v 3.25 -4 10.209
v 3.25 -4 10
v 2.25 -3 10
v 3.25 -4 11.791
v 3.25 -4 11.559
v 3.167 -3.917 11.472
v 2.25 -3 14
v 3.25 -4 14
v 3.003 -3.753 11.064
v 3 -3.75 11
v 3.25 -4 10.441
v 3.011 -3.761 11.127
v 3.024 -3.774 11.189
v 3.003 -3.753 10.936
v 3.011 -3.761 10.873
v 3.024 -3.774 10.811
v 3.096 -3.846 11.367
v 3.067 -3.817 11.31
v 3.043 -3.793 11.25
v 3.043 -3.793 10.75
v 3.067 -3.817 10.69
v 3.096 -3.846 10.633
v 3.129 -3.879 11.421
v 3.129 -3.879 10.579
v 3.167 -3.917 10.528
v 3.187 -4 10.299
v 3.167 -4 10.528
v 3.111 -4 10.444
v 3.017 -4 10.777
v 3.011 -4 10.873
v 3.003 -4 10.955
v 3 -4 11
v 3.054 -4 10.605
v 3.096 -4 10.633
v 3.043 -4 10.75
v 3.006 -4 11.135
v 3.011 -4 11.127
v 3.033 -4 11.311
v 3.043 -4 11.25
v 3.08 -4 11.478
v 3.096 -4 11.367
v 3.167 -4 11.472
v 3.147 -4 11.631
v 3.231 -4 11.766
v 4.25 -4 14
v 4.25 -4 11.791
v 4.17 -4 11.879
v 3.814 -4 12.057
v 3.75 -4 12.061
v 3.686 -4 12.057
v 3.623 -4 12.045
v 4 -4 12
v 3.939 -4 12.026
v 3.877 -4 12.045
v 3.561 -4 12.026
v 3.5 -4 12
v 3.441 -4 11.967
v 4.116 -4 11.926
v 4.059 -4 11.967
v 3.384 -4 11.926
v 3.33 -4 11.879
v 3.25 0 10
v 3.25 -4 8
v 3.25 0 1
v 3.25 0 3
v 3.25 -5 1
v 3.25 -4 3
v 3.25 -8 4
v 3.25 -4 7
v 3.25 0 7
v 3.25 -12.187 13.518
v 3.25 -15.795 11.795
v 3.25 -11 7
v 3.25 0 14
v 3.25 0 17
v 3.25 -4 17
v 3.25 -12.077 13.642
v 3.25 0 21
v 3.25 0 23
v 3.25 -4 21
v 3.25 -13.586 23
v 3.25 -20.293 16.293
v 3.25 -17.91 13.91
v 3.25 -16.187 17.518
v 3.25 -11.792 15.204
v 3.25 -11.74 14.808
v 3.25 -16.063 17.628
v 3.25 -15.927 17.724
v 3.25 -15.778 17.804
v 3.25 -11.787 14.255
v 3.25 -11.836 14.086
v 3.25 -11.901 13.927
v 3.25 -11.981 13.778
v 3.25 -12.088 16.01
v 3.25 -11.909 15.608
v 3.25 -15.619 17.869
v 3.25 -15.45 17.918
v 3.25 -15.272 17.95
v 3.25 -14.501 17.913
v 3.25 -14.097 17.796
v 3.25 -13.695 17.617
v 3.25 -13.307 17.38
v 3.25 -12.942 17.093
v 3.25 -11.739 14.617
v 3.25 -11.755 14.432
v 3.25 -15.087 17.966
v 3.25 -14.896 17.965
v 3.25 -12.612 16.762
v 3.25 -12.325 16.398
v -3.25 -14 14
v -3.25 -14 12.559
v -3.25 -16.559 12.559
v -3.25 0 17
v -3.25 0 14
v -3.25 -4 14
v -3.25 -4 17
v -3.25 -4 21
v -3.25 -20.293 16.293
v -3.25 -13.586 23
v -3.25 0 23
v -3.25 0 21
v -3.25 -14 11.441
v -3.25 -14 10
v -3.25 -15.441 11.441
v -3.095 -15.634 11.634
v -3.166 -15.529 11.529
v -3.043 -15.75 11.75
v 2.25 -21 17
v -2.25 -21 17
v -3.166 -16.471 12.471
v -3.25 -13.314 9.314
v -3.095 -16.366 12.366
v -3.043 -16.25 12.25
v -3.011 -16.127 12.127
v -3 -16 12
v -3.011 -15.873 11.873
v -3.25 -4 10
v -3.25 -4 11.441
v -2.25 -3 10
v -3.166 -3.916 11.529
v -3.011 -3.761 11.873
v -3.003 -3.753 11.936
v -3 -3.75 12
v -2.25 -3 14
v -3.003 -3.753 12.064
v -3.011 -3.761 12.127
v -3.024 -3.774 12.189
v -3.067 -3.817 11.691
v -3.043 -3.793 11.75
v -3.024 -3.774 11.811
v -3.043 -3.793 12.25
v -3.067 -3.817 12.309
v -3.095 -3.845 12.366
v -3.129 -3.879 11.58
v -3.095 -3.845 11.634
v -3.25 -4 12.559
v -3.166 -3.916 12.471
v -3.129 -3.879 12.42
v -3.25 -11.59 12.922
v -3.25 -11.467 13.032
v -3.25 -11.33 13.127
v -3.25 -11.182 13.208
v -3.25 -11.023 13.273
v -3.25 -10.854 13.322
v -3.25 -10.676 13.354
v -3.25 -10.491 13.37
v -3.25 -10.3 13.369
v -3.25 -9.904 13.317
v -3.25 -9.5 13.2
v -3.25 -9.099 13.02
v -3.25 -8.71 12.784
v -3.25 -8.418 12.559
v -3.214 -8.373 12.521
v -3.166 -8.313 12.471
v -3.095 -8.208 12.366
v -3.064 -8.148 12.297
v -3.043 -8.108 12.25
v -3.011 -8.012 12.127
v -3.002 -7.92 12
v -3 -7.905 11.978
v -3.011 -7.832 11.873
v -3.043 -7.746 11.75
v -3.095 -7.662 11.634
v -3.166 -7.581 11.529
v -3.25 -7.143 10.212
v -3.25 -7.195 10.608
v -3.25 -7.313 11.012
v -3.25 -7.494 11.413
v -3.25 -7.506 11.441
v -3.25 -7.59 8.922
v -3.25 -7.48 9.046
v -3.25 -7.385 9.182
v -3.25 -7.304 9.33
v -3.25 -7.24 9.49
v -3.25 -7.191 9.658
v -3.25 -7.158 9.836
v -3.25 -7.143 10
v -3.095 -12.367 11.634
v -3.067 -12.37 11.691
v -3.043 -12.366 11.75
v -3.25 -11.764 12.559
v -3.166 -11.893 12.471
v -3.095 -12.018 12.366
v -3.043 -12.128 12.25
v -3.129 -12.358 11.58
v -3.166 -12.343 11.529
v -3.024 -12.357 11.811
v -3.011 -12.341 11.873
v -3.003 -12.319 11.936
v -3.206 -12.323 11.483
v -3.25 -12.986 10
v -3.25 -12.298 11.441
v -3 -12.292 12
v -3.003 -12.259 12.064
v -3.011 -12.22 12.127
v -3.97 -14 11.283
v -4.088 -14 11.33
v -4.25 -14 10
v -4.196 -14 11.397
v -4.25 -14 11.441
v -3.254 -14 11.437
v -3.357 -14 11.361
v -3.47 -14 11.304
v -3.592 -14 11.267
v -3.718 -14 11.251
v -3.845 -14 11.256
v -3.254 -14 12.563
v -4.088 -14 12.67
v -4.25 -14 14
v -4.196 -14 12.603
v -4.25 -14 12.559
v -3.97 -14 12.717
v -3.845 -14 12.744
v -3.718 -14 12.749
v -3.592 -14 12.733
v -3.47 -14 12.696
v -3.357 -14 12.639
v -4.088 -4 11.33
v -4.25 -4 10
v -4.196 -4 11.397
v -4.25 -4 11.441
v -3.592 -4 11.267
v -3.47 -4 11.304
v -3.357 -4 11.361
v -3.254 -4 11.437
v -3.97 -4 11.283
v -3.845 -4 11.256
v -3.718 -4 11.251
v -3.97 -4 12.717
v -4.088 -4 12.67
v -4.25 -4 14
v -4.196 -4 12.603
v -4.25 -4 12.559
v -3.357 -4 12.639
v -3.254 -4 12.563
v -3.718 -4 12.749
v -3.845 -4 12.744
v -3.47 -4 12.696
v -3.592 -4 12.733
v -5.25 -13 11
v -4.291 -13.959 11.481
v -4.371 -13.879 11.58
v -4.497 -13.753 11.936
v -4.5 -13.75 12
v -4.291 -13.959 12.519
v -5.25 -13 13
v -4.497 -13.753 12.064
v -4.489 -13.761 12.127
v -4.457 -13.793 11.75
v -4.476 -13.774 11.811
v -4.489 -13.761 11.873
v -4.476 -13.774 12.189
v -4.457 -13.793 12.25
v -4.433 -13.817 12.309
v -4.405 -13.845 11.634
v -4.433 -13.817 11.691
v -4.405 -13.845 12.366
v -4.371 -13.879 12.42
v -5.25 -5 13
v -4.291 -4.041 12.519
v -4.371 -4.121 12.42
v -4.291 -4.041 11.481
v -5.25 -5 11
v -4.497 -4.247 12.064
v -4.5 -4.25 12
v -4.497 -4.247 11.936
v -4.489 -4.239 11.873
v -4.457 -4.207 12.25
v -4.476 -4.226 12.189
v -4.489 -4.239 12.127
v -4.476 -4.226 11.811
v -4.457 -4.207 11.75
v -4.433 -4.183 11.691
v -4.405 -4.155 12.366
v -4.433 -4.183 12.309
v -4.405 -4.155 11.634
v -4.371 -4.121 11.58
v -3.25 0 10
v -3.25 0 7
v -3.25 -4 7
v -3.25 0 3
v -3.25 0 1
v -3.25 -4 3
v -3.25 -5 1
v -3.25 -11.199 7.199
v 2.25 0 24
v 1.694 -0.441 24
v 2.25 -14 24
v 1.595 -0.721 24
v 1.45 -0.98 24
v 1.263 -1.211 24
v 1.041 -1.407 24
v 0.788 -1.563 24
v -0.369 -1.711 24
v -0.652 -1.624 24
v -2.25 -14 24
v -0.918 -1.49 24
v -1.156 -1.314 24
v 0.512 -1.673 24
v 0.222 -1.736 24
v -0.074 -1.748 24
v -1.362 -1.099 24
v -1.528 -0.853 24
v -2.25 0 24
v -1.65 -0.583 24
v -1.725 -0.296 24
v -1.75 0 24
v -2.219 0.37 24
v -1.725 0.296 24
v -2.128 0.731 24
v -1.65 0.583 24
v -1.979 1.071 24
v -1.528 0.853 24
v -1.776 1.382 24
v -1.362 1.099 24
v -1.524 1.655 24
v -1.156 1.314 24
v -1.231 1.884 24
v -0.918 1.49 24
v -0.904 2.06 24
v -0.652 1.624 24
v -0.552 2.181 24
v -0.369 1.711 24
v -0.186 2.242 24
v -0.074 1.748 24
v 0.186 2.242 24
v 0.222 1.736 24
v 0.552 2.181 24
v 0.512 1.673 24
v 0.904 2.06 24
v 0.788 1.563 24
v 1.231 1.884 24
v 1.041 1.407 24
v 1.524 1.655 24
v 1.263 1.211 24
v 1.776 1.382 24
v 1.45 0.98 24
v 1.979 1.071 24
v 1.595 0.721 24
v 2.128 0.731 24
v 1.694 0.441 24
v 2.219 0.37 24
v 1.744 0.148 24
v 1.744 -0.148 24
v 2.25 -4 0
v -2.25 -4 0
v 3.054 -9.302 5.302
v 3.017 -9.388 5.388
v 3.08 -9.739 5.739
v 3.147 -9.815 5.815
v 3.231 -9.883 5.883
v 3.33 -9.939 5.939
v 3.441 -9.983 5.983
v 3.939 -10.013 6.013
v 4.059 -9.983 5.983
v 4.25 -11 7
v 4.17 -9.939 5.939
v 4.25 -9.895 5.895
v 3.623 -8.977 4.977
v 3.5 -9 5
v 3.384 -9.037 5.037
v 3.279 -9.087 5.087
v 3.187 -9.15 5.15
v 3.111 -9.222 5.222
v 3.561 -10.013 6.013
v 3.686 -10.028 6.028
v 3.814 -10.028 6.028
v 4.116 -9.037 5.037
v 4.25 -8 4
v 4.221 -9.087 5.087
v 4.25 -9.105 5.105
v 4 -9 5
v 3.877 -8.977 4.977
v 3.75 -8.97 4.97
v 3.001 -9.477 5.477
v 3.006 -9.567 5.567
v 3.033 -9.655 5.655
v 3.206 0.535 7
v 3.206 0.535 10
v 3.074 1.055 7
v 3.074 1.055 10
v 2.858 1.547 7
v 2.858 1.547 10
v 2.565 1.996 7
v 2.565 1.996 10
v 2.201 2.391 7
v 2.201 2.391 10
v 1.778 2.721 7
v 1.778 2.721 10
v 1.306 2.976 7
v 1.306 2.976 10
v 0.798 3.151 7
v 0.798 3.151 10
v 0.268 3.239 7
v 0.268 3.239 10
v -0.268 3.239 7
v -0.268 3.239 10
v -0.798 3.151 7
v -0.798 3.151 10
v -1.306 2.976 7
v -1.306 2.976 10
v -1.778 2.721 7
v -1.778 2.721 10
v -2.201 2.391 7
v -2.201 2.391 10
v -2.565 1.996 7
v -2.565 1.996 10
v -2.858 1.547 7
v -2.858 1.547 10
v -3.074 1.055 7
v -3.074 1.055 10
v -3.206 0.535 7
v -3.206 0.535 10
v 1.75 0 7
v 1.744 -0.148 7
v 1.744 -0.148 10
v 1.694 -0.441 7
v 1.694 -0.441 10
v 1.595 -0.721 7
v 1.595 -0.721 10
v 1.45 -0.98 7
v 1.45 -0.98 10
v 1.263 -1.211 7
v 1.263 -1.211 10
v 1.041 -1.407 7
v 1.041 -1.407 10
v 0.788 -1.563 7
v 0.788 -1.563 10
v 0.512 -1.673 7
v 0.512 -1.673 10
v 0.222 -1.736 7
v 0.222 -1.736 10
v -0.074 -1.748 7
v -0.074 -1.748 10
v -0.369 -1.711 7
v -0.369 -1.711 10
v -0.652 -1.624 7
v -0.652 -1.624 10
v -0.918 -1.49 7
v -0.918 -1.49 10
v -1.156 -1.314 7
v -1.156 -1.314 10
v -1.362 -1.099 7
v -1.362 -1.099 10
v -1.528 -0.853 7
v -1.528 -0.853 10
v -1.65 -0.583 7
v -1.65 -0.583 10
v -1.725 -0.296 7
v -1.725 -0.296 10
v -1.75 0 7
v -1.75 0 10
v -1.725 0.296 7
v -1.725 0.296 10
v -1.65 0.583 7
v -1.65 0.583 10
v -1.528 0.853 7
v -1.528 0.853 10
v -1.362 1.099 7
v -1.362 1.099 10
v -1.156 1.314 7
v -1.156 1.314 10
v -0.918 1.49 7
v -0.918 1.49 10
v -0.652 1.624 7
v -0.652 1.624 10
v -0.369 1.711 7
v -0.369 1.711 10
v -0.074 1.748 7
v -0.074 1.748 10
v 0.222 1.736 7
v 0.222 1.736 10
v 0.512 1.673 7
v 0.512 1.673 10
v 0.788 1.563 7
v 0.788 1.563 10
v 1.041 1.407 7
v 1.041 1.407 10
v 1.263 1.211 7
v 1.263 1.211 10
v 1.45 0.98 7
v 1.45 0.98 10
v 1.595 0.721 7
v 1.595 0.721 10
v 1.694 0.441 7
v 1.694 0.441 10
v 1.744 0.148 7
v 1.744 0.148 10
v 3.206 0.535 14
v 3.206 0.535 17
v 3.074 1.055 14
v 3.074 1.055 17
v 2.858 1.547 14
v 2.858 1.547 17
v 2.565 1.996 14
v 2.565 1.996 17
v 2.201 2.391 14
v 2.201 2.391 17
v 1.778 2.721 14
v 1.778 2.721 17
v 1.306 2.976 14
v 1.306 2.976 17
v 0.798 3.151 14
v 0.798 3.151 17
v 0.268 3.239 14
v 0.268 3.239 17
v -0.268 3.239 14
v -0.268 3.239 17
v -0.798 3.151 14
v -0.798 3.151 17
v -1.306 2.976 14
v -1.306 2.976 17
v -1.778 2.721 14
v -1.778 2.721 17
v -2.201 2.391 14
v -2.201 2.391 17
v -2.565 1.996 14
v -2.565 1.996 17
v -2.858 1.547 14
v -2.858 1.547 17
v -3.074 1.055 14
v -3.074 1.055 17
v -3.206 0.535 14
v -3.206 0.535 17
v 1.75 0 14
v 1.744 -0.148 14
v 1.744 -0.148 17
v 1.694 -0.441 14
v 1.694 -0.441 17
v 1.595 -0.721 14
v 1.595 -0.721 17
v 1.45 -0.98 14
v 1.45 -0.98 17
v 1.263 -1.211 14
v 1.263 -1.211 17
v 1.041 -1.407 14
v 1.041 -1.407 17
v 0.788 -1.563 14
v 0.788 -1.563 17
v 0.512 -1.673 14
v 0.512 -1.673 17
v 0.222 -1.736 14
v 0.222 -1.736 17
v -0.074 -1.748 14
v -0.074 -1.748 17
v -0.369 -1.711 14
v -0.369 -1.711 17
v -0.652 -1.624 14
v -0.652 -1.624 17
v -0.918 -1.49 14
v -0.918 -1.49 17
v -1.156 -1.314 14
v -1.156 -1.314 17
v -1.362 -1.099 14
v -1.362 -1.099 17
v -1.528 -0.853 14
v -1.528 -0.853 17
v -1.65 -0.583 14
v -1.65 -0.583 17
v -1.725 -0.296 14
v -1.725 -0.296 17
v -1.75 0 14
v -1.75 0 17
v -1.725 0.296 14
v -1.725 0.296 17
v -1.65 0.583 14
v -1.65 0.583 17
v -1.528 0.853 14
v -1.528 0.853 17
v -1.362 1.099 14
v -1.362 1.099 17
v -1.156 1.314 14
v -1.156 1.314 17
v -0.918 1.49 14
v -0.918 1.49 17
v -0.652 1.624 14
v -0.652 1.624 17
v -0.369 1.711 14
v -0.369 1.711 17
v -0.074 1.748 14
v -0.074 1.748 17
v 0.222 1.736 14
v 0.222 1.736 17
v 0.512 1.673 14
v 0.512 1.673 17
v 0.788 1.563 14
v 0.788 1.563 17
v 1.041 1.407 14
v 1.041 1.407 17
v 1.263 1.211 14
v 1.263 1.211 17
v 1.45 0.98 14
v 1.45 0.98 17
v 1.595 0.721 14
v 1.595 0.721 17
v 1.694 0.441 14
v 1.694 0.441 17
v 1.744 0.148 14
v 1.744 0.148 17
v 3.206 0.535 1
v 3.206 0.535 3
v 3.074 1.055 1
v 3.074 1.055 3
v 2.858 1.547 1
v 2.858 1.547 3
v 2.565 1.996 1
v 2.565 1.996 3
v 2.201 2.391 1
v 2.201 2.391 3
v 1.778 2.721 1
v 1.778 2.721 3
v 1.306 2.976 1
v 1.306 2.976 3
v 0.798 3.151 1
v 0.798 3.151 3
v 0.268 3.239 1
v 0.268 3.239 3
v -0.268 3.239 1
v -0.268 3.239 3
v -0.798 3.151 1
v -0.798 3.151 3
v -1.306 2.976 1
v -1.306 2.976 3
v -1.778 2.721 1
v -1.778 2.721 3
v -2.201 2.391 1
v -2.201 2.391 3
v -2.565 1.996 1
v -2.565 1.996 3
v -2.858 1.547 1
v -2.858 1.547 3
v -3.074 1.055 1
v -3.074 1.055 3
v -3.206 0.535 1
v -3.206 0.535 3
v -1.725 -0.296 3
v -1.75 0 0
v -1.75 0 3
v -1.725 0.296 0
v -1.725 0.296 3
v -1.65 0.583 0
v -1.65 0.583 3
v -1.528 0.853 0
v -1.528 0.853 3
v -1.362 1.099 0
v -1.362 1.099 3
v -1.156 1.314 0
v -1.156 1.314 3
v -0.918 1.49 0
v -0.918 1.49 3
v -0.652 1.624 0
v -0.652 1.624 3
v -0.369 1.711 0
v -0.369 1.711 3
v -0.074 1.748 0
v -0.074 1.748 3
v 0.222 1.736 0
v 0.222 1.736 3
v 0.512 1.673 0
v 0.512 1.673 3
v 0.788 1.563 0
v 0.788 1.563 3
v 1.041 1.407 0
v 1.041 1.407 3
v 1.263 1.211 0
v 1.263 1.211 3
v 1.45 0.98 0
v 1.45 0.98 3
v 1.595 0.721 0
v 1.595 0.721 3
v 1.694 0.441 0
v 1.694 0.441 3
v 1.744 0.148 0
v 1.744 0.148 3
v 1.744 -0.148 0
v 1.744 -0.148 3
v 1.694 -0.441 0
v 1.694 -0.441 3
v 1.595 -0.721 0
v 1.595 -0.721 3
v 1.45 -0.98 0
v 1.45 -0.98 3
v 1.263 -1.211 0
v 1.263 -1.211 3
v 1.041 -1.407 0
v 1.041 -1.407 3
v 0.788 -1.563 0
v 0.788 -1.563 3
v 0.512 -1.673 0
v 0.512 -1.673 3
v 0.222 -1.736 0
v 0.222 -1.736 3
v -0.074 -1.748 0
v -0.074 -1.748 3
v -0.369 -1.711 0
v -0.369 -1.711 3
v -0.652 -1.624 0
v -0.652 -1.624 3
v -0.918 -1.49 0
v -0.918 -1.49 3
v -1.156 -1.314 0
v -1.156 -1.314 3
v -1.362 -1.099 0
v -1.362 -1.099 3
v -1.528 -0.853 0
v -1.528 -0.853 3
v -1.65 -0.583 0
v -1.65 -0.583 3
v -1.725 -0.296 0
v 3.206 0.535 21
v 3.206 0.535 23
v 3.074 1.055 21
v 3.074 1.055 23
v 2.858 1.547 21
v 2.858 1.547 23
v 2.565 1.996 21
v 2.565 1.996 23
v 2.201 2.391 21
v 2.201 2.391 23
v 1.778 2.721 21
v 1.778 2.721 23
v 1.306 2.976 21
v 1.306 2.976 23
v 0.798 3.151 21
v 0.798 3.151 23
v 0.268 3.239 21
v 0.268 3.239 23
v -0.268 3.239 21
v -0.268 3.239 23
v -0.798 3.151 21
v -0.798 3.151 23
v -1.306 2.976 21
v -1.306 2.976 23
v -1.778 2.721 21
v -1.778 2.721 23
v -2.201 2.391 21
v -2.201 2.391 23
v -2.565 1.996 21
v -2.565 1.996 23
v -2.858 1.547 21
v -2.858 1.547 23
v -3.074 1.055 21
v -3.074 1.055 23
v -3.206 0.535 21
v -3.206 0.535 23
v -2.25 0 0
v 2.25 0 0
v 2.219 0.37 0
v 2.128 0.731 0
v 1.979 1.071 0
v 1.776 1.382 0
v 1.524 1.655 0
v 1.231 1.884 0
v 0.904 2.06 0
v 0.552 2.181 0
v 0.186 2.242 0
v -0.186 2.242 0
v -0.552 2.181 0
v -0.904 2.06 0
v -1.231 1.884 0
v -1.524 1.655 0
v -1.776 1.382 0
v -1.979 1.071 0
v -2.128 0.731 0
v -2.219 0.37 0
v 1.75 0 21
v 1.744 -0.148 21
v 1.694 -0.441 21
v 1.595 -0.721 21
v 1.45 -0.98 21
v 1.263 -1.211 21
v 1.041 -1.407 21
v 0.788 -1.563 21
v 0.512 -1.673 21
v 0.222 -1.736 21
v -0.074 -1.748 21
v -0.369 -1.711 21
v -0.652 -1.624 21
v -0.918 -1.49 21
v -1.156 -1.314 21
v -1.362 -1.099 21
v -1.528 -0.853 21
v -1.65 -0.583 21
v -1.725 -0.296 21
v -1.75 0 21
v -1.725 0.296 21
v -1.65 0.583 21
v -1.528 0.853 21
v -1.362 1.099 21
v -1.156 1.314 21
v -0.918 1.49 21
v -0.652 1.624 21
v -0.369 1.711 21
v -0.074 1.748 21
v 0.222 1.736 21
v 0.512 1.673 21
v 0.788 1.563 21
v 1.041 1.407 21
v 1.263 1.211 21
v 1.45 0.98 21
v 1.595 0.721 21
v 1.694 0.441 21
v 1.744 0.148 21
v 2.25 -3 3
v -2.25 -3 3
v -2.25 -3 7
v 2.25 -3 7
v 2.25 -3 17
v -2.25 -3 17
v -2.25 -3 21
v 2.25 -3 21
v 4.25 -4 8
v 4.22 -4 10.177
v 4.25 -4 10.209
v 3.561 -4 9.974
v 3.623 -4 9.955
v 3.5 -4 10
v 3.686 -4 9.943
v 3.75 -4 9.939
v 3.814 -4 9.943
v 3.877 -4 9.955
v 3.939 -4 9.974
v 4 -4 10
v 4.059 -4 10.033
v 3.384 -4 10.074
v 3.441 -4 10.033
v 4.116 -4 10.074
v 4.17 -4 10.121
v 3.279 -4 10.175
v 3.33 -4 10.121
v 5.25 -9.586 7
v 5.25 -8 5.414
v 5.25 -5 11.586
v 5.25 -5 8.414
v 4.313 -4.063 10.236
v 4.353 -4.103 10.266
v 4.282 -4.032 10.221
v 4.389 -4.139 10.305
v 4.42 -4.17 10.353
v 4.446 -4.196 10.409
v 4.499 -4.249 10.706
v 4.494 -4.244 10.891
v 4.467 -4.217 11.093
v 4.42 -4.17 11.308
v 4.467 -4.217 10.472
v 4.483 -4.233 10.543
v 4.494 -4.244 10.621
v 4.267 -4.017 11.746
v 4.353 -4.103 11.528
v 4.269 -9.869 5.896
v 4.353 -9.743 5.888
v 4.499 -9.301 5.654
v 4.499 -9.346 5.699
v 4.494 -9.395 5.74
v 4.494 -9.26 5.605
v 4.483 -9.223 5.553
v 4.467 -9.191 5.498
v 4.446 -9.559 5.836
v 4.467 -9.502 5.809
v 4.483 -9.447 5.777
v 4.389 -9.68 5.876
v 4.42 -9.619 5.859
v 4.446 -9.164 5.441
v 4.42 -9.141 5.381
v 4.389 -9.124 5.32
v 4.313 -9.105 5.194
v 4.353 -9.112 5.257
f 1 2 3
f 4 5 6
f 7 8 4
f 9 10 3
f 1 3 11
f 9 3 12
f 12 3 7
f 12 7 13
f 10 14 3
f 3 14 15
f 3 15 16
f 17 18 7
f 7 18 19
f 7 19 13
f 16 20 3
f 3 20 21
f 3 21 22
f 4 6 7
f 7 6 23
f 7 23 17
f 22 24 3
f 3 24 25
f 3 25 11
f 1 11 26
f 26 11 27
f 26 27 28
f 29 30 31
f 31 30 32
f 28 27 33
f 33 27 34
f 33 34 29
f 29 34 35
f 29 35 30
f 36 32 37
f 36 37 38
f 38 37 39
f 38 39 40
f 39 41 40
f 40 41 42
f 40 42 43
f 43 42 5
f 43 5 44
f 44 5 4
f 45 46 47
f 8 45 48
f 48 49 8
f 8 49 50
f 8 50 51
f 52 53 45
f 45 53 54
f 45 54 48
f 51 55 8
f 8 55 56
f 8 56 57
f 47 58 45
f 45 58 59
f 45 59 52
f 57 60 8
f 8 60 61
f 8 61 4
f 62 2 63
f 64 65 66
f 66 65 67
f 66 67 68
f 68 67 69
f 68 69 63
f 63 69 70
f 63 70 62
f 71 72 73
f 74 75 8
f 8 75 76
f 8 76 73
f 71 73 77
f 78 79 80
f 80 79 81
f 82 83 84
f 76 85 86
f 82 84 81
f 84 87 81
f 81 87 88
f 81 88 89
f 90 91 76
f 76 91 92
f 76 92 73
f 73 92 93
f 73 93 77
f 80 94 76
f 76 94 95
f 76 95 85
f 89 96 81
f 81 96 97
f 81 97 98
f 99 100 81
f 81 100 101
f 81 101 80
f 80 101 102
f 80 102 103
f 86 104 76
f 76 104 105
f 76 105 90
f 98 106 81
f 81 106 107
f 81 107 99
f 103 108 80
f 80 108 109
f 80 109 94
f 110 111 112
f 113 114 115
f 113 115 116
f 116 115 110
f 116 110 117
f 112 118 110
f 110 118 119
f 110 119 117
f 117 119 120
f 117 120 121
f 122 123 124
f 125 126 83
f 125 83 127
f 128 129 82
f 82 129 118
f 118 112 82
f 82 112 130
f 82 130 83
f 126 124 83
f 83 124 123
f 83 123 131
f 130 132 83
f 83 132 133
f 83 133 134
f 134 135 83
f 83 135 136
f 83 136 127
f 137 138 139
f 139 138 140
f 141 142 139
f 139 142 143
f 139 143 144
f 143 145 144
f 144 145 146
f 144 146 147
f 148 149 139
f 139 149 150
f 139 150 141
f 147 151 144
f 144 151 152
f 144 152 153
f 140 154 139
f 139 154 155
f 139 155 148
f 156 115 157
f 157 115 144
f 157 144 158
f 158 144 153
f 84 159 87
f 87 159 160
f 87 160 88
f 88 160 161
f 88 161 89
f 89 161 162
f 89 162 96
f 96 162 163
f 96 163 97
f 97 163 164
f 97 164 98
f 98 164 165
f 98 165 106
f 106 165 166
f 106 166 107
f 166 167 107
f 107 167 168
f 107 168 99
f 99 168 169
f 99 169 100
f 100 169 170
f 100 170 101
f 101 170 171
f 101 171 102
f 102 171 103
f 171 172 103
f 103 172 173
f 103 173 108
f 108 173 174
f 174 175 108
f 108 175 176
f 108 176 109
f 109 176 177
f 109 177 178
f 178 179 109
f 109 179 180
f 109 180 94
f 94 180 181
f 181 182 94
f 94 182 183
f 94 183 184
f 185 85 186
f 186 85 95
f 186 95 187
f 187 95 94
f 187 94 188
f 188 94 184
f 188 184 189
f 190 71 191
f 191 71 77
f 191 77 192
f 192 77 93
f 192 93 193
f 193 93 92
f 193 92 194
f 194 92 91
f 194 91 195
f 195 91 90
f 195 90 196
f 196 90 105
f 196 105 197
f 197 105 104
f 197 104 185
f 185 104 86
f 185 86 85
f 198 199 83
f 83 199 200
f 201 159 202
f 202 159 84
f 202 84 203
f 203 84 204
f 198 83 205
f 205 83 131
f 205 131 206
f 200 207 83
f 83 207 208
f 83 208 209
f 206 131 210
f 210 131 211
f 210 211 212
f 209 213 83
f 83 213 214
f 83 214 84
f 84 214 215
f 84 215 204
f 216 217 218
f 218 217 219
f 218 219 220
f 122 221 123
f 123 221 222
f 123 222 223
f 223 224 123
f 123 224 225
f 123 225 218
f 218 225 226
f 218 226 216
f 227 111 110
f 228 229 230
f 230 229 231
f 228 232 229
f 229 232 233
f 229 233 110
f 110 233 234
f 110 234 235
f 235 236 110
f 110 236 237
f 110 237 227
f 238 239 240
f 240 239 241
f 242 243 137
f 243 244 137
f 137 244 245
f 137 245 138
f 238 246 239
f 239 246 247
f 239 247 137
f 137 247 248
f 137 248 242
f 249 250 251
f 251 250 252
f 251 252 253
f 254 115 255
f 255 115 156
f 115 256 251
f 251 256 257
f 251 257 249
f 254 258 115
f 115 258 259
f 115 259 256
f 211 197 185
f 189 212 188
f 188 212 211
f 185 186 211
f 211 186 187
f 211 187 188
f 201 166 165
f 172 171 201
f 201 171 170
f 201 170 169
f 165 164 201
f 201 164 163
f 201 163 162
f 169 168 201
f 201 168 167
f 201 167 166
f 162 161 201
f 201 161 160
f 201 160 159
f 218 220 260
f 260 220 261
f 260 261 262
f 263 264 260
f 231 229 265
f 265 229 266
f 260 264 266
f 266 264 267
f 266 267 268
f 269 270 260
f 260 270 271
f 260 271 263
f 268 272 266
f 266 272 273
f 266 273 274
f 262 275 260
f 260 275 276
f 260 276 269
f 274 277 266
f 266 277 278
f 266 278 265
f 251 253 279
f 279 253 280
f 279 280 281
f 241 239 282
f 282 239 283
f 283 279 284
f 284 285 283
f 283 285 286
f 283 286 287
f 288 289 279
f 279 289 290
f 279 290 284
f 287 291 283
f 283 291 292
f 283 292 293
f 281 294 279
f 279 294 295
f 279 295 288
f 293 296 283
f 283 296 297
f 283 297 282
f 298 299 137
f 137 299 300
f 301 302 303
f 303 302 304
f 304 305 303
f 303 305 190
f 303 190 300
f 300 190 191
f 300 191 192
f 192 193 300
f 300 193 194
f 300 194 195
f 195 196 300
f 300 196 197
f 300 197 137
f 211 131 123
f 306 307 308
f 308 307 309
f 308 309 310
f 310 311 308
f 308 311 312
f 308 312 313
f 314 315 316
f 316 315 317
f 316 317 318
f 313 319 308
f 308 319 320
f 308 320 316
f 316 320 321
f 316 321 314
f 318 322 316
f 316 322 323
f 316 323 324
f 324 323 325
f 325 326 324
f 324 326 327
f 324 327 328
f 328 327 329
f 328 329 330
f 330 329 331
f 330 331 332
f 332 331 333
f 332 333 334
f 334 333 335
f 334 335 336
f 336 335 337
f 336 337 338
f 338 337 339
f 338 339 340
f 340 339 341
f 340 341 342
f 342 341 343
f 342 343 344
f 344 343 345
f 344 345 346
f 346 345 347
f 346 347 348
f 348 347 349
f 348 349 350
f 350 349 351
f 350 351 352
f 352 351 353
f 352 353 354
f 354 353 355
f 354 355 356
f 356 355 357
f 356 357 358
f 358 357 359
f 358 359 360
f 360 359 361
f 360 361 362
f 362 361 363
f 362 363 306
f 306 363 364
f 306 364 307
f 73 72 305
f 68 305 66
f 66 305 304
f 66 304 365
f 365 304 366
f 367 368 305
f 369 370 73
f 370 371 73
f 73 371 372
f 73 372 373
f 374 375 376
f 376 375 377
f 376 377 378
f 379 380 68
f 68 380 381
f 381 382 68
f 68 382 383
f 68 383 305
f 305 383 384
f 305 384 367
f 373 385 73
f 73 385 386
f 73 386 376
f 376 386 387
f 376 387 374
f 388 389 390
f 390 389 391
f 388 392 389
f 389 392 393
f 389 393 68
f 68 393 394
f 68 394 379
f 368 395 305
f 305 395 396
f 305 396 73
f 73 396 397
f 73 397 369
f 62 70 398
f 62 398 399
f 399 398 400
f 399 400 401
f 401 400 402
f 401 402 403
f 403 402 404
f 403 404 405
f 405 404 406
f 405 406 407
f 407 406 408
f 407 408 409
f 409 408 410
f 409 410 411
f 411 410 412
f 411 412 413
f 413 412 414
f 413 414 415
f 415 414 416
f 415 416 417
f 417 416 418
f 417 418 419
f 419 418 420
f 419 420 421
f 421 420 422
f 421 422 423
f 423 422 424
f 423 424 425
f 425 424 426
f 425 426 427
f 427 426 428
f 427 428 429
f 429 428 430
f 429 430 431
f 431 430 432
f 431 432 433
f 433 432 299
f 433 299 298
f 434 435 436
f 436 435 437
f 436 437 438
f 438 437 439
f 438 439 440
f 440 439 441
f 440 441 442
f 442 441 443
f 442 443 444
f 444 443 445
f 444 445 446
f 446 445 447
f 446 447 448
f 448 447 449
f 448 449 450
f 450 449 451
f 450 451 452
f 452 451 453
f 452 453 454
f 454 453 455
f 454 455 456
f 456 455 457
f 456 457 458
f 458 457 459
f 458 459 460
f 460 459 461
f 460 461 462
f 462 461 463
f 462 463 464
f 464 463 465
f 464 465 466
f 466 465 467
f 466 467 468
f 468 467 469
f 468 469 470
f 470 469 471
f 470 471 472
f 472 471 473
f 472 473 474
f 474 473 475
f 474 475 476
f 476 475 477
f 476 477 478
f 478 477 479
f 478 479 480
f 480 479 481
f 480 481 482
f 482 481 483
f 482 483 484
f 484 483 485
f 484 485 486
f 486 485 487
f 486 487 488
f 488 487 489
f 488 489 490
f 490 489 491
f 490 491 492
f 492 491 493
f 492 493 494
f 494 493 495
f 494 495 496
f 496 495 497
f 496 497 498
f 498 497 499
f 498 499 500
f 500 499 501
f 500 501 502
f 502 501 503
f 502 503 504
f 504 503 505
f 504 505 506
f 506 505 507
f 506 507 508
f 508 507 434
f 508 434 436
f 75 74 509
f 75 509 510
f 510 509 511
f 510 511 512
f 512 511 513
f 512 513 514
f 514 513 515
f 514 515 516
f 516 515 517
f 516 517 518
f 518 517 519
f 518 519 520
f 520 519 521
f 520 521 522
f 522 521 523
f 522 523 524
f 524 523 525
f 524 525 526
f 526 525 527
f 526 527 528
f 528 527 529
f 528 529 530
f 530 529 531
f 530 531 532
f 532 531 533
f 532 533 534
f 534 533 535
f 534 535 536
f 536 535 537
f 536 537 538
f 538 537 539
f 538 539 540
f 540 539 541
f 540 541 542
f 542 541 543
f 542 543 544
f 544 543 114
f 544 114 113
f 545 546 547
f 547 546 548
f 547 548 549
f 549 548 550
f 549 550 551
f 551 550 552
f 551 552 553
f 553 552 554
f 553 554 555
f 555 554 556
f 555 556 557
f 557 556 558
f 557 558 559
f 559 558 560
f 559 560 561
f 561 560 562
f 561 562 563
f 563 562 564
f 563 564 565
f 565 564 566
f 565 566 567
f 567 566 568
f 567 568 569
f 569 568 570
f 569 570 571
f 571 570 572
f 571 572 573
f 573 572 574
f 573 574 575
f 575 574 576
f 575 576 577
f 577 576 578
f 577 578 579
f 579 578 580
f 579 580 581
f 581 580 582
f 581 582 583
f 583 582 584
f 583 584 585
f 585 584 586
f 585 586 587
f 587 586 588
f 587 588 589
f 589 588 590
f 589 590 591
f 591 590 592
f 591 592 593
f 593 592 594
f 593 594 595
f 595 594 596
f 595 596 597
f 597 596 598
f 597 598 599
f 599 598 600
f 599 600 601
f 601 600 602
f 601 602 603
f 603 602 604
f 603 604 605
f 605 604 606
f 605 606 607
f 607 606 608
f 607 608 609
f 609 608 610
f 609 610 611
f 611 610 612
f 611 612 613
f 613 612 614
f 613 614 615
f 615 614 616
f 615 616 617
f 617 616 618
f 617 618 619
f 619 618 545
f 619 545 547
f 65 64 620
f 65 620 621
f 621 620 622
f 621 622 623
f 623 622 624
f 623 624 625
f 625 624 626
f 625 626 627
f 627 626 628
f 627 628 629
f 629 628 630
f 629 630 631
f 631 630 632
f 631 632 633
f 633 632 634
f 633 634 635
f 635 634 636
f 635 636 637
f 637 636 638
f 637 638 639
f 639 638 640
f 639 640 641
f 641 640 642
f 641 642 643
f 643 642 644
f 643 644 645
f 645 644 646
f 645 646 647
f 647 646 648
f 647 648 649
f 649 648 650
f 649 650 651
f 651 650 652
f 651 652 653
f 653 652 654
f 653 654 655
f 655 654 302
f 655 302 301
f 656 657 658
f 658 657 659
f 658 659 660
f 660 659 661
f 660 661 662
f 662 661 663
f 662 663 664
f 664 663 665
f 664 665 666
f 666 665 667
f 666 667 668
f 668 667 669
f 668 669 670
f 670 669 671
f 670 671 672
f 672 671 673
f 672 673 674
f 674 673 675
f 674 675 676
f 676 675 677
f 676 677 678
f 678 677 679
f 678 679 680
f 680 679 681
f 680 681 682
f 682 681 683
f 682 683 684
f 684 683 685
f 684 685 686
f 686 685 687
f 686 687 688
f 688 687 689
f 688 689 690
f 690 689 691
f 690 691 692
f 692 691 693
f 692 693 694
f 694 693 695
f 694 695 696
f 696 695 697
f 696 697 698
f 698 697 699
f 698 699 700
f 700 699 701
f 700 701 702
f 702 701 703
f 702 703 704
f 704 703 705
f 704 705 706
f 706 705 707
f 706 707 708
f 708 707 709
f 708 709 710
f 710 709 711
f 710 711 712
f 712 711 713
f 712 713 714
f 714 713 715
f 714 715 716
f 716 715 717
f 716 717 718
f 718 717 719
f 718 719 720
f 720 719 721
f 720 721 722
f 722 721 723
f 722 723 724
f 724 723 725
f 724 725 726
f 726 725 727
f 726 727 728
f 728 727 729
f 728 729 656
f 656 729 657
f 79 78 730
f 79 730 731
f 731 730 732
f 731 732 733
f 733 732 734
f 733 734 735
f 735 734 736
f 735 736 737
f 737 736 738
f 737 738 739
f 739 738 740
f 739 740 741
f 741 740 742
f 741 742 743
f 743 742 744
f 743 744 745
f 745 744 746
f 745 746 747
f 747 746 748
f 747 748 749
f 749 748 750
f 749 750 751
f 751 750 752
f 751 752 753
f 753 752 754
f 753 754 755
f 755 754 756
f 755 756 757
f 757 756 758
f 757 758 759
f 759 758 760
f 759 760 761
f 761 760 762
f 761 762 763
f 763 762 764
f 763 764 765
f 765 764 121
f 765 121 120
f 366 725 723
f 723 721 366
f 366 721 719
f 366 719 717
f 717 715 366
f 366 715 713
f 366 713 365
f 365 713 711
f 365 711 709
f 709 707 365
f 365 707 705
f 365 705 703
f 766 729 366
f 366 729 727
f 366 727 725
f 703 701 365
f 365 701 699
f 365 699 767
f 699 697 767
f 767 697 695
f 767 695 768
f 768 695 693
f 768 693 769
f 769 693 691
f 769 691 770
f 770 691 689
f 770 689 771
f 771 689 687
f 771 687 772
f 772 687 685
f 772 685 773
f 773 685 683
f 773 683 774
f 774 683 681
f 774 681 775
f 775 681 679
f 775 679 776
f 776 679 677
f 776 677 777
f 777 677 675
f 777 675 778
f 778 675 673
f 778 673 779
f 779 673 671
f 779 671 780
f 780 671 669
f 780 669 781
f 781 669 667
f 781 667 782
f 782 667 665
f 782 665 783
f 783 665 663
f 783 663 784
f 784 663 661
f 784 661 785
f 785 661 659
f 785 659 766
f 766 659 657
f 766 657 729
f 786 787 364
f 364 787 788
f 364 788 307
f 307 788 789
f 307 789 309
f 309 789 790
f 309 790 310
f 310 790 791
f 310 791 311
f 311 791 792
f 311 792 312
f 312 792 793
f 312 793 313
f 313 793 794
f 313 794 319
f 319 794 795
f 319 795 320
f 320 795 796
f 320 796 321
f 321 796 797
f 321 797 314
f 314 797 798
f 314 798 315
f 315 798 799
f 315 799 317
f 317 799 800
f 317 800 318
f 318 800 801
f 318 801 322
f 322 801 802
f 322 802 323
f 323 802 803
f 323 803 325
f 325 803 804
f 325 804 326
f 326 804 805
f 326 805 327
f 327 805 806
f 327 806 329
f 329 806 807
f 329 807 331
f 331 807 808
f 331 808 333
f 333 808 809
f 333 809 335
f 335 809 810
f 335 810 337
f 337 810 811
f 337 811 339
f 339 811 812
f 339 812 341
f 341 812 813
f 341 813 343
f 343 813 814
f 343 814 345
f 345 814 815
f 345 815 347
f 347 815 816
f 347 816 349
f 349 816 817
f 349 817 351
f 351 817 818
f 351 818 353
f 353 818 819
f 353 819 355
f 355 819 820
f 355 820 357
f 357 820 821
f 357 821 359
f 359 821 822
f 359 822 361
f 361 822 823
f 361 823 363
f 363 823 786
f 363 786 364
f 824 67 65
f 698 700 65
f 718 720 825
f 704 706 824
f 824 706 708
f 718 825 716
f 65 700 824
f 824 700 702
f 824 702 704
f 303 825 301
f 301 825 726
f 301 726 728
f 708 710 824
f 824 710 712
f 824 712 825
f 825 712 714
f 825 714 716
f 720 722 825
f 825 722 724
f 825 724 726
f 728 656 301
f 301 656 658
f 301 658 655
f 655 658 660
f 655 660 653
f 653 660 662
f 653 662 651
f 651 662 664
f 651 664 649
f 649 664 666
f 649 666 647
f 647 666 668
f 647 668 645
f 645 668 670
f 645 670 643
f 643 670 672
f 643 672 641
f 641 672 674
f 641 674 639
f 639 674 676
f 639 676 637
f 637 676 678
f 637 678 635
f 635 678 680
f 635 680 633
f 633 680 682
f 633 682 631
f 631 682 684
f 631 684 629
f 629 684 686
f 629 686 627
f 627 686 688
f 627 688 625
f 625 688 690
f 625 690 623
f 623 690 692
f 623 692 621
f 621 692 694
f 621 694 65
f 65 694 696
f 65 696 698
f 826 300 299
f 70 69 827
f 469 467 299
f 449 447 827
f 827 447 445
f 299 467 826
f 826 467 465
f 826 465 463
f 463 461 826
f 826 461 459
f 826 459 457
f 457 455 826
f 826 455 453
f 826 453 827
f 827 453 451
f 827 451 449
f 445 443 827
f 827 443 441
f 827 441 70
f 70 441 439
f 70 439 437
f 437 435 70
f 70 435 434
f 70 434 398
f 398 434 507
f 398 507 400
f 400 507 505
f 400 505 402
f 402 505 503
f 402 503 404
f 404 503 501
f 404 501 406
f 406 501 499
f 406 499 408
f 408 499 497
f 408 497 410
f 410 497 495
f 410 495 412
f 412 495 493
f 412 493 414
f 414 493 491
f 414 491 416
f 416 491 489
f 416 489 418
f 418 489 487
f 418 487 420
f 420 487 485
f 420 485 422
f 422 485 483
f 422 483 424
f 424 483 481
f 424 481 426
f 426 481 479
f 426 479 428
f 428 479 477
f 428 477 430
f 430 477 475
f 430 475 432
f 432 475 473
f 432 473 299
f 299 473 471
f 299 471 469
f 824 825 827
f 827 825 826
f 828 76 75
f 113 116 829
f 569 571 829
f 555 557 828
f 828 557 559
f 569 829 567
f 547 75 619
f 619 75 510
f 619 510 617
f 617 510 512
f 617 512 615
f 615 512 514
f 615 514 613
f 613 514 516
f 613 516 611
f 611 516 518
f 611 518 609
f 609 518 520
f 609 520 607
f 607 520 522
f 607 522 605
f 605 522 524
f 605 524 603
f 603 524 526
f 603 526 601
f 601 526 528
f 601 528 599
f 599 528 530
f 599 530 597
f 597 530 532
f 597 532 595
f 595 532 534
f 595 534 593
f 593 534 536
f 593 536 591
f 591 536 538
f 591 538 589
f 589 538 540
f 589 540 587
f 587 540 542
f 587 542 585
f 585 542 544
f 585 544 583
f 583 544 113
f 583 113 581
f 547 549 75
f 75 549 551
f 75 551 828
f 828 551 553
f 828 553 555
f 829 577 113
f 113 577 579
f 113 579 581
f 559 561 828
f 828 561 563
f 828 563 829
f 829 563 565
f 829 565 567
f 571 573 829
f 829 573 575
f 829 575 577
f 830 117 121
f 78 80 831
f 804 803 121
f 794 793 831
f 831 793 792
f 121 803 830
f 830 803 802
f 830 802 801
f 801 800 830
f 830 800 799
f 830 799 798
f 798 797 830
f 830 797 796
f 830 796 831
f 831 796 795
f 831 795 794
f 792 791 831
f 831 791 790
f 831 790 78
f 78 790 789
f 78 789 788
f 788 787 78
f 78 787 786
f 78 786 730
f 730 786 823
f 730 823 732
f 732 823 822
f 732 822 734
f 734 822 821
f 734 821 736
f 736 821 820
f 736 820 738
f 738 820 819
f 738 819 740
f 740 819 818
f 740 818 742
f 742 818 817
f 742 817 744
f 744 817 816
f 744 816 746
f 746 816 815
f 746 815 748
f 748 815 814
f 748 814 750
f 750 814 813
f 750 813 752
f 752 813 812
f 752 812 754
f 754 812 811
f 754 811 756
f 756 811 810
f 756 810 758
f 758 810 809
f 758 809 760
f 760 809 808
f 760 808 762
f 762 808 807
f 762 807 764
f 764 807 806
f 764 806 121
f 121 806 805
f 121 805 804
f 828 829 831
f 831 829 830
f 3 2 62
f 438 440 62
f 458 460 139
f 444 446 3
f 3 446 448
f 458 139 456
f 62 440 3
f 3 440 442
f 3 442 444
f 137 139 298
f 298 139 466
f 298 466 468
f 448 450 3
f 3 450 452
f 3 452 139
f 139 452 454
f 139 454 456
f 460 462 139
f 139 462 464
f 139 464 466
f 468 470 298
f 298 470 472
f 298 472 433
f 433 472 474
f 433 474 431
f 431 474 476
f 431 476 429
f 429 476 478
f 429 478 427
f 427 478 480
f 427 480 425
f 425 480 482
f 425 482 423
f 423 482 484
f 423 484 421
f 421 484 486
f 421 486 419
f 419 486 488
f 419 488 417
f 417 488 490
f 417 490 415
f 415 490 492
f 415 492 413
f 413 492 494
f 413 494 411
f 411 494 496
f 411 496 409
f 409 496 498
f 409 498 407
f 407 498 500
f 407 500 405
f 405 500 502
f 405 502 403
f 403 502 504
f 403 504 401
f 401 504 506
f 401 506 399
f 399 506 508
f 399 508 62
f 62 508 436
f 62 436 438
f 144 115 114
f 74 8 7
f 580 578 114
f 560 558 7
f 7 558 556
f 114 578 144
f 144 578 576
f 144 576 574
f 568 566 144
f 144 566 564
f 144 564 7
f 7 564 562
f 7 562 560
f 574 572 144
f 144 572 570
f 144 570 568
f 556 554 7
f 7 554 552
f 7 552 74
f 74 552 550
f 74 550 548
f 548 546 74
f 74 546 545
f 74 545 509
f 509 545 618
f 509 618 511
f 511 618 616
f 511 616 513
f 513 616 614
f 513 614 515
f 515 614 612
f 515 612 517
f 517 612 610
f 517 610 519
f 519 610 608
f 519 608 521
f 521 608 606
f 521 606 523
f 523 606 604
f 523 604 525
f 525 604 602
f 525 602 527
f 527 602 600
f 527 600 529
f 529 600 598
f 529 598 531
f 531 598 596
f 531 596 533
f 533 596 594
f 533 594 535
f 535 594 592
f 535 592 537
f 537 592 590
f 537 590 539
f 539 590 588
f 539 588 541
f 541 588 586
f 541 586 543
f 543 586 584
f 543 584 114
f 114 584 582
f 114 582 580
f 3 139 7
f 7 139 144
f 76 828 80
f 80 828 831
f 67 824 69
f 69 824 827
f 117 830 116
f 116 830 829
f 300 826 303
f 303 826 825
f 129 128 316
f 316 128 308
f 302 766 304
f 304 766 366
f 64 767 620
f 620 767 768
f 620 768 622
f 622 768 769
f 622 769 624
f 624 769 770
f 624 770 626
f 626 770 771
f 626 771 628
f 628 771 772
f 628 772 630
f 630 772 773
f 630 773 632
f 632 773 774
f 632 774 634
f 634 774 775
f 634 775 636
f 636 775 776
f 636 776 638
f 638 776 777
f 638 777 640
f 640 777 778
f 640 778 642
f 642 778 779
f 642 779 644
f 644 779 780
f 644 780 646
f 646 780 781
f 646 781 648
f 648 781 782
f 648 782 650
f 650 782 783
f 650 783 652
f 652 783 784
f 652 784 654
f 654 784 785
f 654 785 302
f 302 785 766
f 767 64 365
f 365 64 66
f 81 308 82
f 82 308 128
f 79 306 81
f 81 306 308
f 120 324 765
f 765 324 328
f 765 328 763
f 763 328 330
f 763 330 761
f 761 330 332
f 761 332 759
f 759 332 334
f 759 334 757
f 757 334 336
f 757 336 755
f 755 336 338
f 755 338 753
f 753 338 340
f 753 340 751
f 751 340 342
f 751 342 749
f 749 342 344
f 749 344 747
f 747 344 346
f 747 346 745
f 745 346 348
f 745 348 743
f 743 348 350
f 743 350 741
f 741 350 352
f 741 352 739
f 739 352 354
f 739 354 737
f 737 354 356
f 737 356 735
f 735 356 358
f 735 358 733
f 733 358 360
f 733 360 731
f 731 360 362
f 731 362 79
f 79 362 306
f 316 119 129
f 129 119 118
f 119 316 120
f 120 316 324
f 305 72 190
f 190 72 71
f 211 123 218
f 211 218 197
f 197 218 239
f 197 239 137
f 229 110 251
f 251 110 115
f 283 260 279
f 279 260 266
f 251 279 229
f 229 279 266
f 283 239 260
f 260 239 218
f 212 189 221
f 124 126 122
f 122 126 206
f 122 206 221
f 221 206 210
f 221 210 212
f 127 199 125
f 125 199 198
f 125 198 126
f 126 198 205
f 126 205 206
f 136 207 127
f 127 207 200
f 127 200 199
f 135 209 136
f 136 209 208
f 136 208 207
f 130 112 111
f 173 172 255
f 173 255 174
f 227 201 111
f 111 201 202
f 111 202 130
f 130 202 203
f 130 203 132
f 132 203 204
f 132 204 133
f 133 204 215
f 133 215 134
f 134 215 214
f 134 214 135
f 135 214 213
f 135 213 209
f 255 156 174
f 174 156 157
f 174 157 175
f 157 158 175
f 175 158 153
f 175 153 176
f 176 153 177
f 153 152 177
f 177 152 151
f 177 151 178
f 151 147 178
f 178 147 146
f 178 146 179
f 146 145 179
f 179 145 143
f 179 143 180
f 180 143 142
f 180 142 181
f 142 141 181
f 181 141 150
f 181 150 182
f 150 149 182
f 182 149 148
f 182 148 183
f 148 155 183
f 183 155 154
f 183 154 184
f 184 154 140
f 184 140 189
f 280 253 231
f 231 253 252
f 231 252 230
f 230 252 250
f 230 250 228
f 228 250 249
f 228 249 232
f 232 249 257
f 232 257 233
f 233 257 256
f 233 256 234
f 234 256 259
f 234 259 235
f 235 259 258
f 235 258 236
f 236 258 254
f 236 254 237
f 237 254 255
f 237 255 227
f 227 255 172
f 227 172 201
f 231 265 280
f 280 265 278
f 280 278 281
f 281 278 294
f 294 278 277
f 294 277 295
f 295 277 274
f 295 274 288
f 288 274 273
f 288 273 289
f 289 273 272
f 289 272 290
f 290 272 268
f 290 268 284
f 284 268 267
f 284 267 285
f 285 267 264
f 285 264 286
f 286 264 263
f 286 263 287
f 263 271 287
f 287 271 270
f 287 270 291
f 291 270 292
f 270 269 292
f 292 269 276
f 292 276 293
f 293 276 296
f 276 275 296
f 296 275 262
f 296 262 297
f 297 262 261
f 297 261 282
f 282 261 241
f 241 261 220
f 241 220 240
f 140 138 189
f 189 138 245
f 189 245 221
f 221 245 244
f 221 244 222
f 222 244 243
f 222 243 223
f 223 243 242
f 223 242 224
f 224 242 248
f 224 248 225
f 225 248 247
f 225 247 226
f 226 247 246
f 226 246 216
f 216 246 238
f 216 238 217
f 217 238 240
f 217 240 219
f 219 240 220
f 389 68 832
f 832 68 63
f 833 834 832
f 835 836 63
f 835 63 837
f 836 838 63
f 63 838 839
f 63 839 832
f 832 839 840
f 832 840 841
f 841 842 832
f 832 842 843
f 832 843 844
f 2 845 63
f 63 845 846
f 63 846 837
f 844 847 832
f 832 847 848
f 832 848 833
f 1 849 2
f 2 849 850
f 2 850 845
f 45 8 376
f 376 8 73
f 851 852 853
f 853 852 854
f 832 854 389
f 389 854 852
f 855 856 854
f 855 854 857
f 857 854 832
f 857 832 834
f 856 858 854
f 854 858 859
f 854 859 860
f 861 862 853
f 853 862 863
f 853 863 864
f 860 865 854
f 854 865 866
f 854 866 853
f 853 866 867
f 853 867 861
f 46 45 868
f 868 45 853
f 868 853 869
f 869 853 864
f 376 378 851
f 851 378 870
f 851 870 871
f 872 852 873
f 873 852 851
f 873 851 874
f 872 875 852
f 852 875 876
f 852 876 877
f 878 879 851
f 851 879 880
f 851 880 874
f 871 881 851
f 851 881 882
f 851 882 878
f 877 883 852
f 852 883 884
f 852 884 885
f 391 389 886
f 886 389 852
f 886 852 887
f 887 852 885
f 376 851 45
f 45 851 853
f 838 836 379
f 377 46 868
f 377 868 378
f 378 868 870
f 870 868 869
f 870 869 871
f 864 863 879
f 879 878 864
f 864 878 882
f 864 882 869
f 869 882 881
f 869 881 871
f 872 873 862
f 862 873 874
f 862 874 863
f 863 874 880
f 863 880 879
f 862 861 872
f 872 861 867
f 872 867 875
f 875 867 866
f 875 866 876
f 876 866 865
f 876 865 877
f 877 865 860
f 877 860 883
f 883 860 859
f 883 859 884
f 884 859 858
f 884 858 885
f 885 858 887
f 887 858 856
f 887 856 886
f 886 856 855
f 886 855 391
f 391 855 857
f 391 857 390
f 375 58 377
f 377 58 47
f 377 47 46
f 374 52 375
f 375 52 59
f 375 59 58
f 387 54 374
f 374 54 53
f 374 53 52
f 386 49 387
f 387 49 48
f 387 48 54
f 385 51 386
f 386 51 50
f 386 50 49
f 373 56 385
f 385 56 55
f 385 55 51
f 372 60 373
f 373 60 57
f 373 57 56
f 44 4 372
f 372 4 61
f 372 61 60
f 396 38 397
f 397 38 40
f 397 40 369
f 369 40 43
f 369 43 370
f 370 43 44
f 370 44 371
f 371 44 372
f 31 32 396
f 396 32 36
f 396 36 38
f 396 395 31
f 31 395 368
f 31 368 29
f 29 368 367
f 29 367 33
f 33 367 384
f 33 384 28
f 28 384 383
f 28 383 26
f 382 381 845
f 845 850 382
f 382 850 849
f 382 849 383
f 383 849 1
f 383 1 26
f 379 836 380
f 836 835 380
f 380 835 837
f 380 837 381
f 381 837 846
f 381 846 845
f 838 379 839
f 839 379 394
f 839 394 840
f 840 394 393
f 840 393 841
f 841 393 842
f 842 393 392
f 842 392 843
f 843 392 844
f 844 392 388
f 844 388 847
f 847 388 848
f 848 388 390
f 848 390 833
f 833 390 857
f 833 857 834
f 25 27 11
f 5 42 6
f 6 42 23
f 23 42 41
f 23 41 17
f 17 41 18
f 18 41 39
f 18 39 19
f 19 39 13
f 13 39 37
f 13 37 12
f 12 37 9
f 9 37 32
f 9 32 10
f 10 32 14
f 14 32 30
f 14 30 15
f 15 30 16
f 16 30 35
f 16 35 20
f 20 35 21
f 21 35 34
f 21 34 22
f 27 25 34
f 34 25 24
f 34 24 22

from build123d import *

# Parameters (mm, degrees)
BOSS_EXTRUDE1_DEPTH      = 24
SKETCH2_R                = 1.75
CUT_EXTRUDE1_DEPTH       = 24
SKETCH3_W                = 4
SKETCH3_H                = 7
CUT_EXTRUDE2_DEPTH       = 6.5
CHAMFER1_SIZE            = 1
CUT_EXTRUDE4_REACH       = 39.447
CUT_EXTRUDE5_DEPTH       = 38.446629
CHAMFER3_SIZE            = 1
CUT_EXTRUDE10_DEPTH      = 13
CUT_EXTRUDE10_DEPTH_BACK = 13
SKETCH11_W               = 4
SKETCH11_H               = 10
BOSS_EXTRUDE3_DEPTH      = 2
CHAMFER4_SIZE            = 1
SKETCH12_R               = 0.75
CUT_EXTRUDE6_DEPTH       = 2
CUT_EXTRUDE6_DEPTH_BACK  = 15
BOSS_EXTRUDE6_DEPTH      = 2
CHAMFER6_SIZE            = 1
CUT_EXTRUDE11_REACH      = 34.628
SKETCH19_R               = 0.75
SKETCH20_R               = 0.75
CUT_EXTRUDE12_DEPTH      = 1


with BuildPart() as part:
    # Sketch1 → Boss-Extrude1 (new body)
    with BuildSketch(Plane.XY):
        with BuildLine():
            Line((-3.25, 0), (-3.25, -28))
            Line((-3.25, -28), (3.25, -28))
            Line((3.25, -28), (3.25, 0))
            ThreePointArc((3.25, 0), (0, 3.25), (-3.25, 0))
        make_face()
    extrude(amount=BOSS_EXTRUDE1_DEPTH)

    # Sketch2 → Cut-Extrude1 (cut)
    with BuildSketch(Plane(origin=(0, 0, 0), x_dir=(-1, 0, 0), z_dir=(0, 0, -1))):
        Circle(SKETCH2_R)
    extrude(amount=-CUT_EXTRUDE1_DEPTH, mode=Mode.SUBTRACT)

    # Sketch3 → Cut-Extrude2 (cut)
    with BuildSketch(Plane.ZY.offset(3.25)):
        with Locations((5, 0.5)):
            Rectangle(SKETCH3_W, SKETCH3_H)
        with Locations((19, 0.5)):
            Rectangle(SKETCH3_W, SKETCH3_H)
        with Locations((12, 0.5)):
            Rectangle(SKETCH3_W, SKETCH3_H)
    extrude(amount=-CUT_EXTRUDE2_DEPTH, mode=Mode.SUBTRACT)

    # Chamfer1
    chamfer1_edges = [part.edges().sort_by_distance(p)[0] for p in [
        (3.25, -3, 5),
        (-3.25, -3, 5),
        (3.25, -3, 19),
        (-3.25, -3, 19),
        (3.25, -3, 12),
        (-3.25, -3, 12),
    ]]
    chamfer(chamfer1_edges, length=CHAMFER1_SIZE)

    # Sketch7 → Cut-Extrude4 (cut, up to next)
    with BuildSketch(Plane.ZY.offset(3.25), mode=Mode.PRIVATE) as cut_extrude4_sk1:
        Polygon((24, -28), (0, -4), (0, -28), align=None)
    cut_extrude4_tool1 = extrude(cut_extrude4_sk1.sketch, amount=-CUT_EXTRUDE4_REACH, mode=Mode.PRIVATE) & part.part
    add(cut_extrude4_tool1.solids().sort_by_distance((-3.25, -20, 8))[0], mode=Mode.SUBTRACT)

    # Sketch10 → Cut-Extrude5 (cut, through all)
    with BuildSketch(Plane(origin=(3.25, 0, 0), x_dir=(0, 0, -1), z_dir=(1, 0, 0))):
        Polygon((-24, -14), (-17, -21), (-24, -28), align=None)
    extrude(amount=-CUT_EXTRUDE5_DEPTH, mode=Mode.SUBTRACT)

    # Chamfer3
    chamfer3_edges = [part.edges().sort_by_distance(p)[0] for p in [
        (-3.25, -7, 24),
        (3.25, -2, 0),
        (3.25, -7, 24),
        (3.25, -17.5, 20.5),
        (-3.25, -17.5, 20.5),
        (-3.25, -2, 0),
        (0, 3.25, 0),
        (0, 3.25, 24),
    ]]
    chamfer(chamfer3_edges, length=CHAMFER3_SIZE)

    # Sketch18 → Cut-Extrude10 (cut, two sides)
    with BuildSketch(Plane(origin=(11.810029, -8.350951, 8.350951), x_dir=(-0.4082482904638629, 0.2886751345948129, 0.8660254037844388), z_dir=(-0.7071067811865475, 0.5000000000000001, -0.4999999999999999))) as cut_extrude10_sk:
        with BuildLine():
            ThreePointArc((6.229669, -8.809395), (6.383996, -10.861584), (8.267375, -11.691148))
            Line((8.267375, -11.691148), (9.17169, -11.339876))
            ThreePointArc((9.17169, -11.339876), (9.793137, -10.626285), (10.016989, -9.706883))
            ThreePointArc((10.016989, -9.706883), (8.936391, -7.930735), (6.862289, -8.07389))
            Line((6.862289, -8.07389), (6.229669, -8.809395))
        make_face()
        with BuildLine():
            Line((2.829335, -12.762736), (3.406685, -13.579233))
            Line((3.406685, -13.579233), (8.267375, -11.691148))
            ThreePointArc((8.267375, -11.691148), (6.383996, -10.861584), (6.229669, -8.809395))
            Line((6.229669, -8.809395), (2.829335, -12.762736))
        make_face()
    extrude(amount=CUT_EXTRUDE10_DEPTH, mode=Mode.SUBTRACT)
    extrude(cut_extrude10_sk.sketch, amount=-CUT_EXTRUDE10_DEPTH_BACK, mode=Mode.SUBTRACT)

    # Sketch11 → Boss-Extrude3 (add)
    with BuildSketch(Plane.ZY.offset(3.25)):
        with Locations((12, -9)):
            Rectangle(SKETCH11_W, SKETCH11_H)
    extrude(amount=BOSS_EXTRUDE3_DEPTH)

    # Chamfer4
    chamfer4_edges = [part.edges().sort_by_distance(p)[0] for p in [
        (-5.25, -9, 10),
        (-5.25, -14, 12),
        (-5.25, -9, 14),
        (-5.25, -4, 12),
    ]]
    chamfer(chamfer4_edges, length=CHAMFER4_SIZE)

    # Sketch12 → Cut-Extrude6 (cut, two sides)
    with BuildSketch(Plane(origin=(0, -4, 0), x_dir=(1, 0, 0), z_dir=(0, 1, 0))) as cut_extrude6_sk:
        with Locations(Location((-3.75, -12, 0), (0, 0, 48.189685))):
            Circle(SKETCH12_R)
    extrude(amount=CUT_EXTRUDE6_DEPTH, mode=Mode.SUBTRACT)
    extrude(cut_extrude6_sk.sketch, amount=-CUT_EXTRUDE6_DEPTH_BACK, mode=Mode.SUBTRACT)

    # Sketch14 → Boss-Extrude6 (add)
    with BuildSketch(Plane(origin=(3.25, 0, 0), x_dir=(0, 0, -1), z_dir=(1, 0, 0))):
        Polygon((-14, -4), (-7, -11), (-4, -8), (-8, -4), align=None)
    extrude(amount=BOSS_EXTRUDE6_DEPTH)

    # Chamfer6
    chamfer6_edges = [part.edges().sort_by_distance(p)[0] for p in [
        (5.25, -4, 11),
        (5.25, -9.5, 5.5),
        (5.25, -6, 6),
        (5.25, -7.5, 10.5),
    ]]
    chamfer(chamfer6_edges, length=CHAMFER6_SIZE)

    # Cut-Extrude11: up to this plane
    cut_extrude11_end = Plane(origin=(5.25, -4, 0), z_dir=(0, 1, 0))
    # Sketch19 → Cut-Extrude11 (cut, up to the surface)
    with BuildSketch(Plane(origin=(0, -2, -2), x_dir=(1, 0, 0), z_dir=(0, -0.7071067811865475, -0.7071067811865476)), mode=Mode.PRIVATE) as cut_extrude11_sk1:
        with Locations(Location((3.75, 10.606602, 0), (0, 0, 311.810315))):
            Circle(SKETCH19_R)
    cut_extrude11_tool1 = split(extrude(cut_extrude11_sk1.sketch, amount=-CUT_EXTRUDE11_REACH, mode=Mode.PRIVATE), bisect_by=cut_extrude11_end, keep=Keep.BOTH, mode=Mode.PRIVATE)
    add(cut_extrude11_tool1.solids().sort_by_distance((3.75, -9.5, 5.5))[0], mode=Mode.SUBTRACT)

    # Sketch20 → Cut-Extrude12 (cut)
    with BuildSketch(Plane(origin=(0, -4, 0), x_dir=(1, 0, 0), z_dir=(0, 1, 0))):
        with Locations((3.75, -11)):
            Circle(SKETCH20_R)
    extrude(amount=CUT_EXTRUDE12_DEPTH, mode=Mode.SUBTRACT)


solid = part.part
